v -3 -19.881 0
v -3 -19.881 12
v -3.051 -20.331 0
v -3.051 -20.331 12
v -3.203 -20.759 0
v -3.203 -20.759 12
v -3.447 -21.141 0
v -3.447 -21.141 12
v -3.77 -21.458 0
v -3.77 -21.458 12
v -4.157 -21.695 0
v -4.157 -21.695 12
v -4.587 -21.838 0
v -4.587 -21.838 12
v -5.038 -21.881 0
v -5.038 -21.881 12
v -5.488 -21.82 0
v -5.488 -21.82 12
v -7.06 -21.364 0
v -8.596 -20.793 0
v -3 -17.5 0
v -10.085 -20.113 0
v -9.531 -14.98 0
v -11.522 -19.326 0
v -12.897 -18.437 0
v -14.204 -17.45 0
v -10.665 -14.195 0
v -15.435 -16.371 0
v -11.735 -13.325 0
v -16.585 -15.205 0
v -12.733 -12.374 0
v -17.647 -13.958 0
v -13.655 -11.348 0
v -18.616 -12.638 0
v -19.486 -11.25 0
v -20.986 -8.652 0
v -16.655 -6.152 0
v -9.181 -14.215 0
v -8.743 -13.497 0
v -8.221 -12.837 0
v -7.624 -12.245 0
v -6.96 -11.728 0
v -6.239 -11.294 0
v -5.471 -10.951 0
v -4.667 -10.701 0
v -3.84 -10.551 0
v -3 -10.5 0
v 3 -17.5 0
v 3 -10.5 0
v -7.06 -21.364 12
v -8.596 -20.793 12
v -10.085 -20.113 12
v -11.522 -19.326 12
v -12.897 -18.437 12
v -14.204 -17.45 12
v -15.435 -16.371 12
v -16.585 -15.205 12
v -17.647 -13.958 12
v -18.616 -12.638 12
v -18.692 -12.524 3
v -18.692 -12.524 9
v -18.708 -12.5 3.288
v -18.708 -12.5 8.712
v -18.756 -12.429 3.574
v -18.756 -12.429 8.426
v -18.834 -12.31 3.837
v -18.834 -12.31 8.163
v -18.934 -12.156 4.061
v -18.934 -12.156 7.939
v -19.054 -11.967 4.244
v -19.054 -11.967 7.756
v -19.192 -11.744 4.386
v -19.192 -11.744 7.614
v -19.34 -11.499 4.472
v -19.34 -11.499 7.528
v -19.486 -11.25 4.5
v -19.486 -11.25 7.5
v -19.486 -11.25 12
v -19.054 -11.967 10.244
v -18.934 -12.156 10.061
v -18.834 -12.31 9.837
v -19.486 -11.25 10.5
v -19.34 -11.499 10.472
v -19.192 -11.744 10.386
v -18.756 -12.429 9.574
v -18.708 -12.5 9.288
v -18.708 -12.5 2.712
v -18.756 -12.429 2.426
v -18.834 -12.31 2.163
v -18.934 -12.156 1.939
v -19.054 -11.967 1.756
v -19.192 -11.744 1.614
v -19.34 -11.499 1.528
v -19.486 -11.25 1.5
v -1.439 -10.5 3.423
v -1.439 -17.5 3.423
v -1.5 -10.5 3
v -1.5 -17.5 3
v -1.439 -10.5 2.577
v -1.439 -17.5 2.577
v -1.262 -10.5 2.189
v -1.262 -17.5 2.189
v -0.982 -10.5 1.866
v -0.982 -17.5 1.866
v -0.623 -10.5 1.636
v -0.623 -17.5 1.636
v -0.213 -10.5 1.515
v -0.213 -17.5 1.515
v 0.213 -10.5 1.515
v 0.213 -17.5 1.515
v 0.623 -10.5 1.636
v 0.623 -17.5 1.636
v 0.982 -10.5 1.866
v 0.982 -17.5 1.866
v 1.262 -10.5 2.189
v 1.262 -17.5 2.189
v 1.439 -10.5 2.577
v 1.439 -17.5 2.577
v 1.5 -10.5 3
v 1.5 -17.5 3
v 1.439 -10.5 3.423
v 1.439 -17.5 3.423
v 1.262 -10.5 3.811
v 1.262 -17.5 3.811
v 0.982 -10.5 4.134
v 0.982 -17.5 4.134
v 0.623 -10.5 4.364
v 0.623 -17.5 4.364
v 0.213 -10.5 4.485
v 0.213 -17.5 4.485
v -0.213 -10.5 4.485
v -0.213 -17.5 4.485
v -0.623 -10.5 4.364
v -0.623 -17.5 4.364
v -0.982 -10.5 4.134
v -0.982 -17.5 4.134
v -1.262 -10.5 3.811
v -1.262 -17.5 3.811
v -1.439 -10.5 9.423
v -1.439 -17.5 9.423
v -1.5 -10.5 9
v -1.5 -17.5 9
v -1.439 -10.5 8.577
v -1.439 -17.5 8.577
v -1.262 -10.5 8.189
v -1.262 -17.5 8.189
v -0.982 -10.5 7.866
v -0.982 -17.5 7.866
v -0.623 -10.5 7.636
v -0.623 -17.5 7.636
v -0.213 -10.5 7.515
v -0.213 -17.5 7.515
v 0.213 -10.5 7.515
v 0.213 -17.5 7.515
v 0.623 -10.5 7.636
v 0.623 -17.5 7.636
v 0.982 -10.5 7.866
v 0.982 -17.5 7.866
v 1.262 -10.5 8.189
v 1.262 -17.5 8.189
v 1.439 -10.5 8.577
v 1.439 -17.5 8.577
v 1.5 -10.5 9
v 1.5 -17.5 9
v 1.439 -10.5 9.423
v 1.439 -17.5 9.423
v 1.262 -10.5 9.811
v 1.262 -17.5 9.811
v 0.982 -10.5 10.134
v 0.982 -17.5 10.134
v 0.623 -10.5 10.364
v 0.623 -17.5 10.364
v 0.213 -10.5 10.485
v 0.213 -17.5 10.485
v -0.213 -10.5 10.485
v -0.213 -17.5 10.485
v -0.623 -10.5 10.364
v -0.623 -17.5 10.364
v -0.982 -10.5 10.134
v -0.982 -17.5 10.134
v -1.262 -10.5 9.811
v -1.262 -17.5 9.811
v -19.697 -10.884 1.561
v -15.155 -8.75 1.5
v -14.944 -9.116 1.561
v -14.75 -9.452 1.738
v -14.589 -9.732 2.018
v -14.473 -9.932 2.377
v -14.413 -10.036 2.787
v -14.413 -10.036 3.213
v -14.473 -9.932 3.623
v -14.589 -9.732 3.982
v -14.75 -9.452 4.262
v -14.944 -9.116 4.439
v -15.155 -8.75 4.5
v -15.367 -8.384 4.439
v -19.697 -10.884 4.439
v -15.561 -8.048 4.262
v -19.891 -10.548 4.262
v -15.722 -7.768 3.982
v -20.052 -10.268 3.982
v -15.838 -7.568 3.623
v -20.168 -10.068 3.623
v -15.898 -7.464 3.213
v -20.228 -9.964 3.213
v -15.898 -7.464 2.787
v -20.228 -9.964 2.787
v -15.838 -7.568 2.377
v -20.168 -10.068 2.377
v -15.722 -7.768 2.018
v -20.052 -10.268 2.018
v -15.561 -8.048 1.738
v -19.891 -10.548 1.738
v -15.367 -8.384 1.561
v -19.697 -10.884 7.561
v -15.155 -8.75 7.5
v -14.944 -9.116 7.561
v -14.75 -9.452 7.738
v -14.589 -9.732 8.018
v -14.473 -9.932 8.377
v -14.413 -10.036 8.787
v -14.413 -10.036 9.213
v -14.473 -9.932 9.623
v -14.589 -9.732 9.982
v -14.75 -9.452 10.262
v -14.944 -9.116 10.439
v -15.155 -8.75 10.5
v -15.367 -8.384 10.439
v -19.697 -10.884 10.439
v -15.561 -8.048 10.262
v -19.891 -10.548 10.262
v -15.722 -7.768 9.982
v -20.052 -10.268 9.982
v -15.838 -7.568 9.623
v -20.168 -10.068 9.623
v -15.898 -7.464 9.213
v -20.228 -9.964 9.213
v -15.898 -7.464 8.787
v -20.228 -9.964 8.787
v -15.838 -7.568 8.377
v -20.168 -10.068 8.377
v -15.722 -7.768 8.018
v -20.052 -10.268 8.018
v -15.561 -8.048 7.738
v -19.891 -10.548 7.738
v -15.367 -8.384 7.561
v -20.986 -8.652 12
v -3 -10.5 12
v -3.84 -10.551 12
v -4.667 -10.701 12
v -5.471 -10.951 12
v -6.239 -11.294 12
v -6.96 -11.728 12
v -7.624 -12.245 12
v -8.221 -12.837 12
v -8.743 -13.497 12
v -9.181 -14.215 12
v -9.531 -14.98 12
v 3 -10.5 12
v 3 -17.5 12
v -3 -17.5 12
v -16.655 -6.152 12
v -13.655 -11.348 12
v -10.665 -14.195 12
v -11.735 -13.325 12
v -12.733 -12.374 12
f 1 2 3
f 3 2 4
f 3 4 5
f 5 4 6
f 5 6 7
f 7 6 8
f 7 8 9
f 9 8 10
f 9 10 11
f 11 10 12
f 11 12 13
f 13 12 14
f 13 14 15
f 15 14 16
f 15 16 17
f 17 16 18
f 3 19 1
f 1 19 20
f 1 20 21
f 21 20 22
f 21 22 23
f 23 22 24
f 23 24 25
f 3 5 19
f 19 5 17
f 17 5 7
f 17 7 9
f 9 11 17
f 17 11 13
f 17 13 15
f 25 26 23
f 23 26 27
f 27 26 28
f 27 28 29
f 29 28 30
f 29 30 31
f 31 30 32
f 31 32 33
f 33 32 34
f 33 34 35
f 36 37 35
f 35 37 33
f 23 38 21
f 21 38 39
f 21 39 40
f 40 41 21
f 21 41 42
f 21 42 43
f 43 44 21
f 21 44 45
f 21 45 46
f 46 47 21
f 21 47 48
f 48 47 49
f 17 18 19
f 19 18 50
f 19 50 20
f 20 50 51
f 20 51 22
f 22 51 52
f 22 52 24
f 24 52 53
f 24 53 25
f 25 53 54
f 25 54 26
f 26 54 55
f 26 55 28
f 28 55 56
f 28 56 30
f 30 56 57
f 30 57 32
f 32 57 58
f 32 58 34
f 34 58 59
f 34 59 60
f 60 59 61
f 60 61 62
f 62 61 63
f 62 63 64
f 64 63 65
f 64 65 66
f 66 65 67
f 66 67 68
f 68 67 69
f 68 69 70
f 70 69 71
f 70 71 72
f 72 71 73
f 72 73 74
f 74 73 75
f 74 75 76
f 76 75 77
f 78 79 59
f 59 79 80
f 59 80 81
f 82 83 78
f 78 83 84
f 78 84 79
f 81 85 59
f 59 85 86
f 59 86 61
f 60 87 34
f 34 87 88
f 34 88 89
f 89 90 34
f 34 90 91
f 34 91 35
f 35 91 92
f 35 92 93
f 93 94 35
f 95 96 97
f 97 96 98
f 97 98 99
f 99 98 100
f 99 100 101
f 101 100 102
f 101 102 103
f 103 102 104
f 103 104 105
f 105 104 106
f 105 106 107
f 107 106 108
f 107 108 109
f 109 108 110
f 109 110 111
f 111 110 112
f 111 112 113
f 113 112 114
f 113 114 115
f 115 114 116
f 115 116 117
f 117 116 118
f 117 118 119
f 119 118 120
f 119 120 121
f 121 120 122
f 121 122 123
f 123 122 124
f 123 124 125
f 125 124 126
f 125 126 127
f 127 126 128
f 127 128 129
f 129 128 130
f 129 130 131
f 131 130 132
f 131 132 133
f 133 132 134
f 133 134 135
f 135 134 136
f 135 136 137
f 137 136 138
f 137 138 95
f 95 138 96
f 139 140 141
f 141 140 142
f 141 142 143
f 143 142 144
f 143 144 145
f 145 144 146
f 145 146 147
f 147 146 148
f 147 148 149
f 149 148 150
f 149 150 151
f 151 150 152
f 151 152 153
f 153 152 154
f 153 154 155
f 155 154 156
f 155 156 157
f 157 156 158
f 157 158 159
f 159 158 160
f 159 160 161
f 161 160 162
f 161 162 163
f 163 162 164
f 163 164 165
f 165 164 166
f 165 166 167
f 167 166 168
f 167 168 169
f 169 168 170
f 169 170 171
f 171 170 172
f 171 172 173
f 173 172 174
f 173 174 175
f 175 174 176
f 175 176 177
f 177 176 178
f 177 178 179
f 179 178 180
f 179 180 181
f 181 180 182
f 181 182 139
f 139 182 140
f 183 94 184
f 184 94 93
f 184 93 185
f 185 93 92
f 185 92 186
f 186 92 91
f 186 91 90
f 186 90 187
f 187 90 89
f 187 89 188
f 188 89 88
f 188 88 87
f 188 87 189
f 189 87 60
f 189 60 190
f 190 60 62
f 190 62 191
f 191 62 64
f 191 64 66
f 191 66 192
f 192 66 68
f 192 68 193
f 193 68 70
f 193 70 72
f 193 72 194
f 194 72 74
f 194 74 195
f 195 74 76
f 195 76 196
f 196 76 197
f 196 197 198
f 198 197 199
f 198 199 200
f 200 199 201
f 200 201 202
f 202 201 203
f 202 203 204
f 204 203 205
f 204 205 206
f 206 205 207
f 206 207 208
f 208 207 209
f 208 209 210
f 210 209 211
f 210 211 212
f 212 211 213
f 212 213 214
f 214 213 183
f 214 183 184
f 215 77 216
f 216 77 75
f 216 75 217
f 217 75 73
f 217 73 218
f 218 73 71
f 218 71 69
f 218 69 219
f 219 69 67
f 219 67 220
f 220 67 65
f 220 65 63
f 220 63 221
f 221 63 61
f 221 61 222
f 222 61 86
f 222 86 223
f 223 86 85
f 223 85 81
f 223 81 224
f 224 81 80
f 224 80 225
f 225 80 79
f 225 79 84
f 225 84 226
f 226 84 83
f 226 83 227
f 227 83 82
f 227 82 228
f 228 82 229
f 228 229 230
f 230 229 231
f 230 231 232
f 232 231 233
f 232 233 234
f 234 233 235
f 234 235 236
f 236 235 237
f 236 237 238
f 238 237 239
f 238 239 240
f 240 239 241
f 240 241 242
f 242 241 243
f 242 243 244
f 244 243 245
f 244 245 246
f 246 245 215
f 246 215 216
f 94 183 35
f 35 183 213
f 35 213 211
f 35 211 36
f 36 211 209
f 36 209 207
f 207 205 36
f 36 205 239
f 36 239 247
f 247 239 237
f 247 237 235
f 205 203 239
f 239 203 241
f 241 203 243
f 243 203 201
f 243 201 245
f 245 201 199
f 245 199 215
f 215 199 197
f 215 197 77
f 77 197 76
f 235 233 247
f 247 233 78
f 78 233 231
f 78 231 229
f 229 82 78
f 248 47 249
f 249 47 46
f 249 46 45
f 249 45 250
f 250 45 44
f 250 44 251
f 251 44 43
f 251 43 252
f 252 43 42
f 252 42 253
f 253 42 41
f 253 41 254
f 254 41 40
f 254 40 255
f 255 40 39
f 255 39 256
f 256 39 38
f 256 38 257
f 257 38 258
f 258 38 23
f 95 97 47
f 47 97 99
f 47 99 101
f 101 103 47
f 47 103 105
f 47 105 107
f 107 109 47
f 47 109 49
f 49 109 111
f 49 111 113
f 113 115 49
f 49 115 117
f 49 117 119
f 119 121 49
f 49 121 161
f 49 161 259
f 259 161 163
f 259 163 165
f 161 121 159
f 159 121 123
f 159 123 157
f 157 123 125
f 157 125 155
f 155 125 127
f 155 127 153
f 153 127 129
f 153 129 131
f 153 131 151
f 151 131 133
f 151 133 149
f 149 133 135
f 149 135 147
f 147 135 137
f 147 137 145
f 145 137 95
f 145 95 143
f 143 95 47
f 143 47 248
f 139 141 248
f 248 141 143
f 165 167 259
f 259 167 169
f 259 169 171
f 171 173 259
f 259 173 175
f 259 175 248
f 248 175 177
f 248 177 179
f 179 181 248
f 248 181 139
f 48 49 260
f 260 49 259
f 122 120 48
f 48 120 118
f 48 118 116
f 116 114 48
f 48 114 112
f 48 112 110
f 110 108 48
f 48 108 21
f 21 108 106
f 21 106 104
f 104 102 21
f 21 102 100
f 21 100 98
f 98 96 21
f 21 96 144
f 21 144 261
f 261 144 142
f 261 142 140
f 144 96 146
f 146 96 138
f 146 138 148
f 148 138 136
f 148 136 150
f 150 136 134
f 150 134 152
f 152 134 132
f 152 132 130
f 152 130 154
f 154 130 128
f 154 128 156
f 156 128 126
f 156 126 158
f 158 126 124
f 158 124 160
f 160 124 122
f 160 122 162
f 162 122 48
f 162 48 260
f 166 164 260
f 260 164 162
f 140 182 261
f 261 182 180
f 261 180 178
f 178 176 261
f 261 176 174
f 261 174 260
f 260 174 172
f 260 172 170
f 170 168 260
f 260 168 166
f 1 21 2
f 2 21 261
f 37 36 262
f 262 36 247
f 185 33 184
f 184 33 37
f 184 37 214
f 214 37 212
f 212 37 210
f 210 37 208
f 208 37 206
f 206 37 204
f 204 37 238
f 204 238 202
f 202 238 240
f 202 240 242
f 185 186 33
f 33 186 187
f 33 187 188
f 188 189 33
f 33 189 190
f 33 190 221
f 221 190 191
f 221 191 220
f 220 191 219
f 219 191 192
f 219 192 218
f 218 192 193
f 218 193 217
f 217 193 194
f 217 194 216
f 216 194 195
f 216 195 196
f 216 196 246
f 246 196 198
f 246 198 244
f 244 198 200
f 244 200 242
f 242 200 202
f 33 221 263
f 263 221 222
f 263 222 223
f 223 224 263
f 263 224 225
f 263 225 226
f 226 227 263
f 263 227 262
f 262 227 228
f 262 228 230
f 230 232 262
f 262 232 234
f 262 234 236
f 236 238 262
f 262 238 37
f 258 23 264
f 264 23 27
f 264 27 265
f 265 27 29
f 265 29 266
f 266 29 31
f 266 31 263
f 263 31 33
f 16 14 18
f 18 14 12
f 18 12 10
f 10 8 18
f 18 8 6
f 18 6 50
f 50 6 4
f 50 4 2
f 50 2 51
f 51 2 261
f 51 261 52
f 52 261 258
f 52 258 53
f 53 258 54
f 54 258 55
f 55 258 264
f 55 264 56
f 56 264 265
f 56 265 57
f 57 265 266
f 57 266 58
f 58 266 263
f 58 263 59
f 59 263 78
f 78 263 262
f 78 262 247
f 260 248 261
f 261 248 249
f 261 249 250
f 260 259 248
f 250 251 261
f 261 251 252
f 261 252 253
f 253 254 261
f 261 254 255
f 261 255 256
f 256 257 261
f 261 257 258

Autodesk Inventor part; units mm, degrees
ref_plane "YZ Plane" through (0, 0, 0) normal (1, 0, 0) x (0, 1, 0)
ref_plane "XZ Plane" through (0, 0, 0) normal (0, 1, 0) x (-1, 0, 0)
ref_plane "XY Plane" through (0, 0, 0) normal (0, 0, 1) x (1, 0, 0)
sketch "Sketch1" plane through (0, 0, 0) normal (0, 0, 1) x (1, 0, 0)
  circle A0 centre (0, 0) radius 17.5
  line L0 (-15.1554, -8.75) -> (-13.6554, -11.3481)
  line L1 (-15.1554, -8.75) -> (-16.6554, -6.1519)
  line L2 (0, 0) -> (0, -17.5)
  line L3 (0, 0) -> (15.1554, -8.75)
  line L4 (0, 0) -> (17.5, 0) construction
  line L5 (0, 0) -> (17.5, 0) construction
  line L6 (0, 17.5) -> (0, -17.5)
  line L7 (-15.1554, -8.75) -> (0, 0)
  line L8 (0, -17.5) -> (3, -17.5)
  line L9 (3, -17.5) -> (3, -20.5)
  line L10 (-3, -17.5) -> (0, -17.5)
  line L11 (-3, -17.5) -> (-3, -14)
  line L12 (-3, -10.5) -> (3, -10.5)
  line L13 (3, -10.5) -> (3, -17.5)
  arc A1 (-3, -10.5) -> (-9.5308, -14.9804) centre (-3, -17.5) ccw
  arc A2 (-13.6554, -11.3481) -> (-9.5308, -14.9804) centre (0, 0) ccw
  line L14 (-16.6554, -6.1519) -> (-20.9856, -8.6519)
  line L15 (-20.9856, -8.6519) -> (-19.4856, -11.25)
  arc A3 (-19.4856, -11.25) -> (-3, -22.2991) centre (0, 0) ccw
  line L16 (-3, -14) -> (-3, -22.2991)
  point P0 (0, -10.5)
  point P1 (-3, -17.2409)
  point P2 (3, -17.2409)
  point P3 (-9.4329, -14.7401)
  point P4 (-3, -17.2409)
  dimension "d0" = 35
  dimension "d1" = 3
  dimension "d3" = 3
  dimension "d4" = 330
  dimension "d6" = 35
  dimension "d8" = 3
  dimension "d9" = 3
  dimension "d29" = 7
  dimension "d30" = 6
  dimension "d32" = 5
  dimension "d33" = 3
extrude "Extrusion1" add sketch "Sketch1" along normal blind 12 contours L0 A2 A1 A0 L11 L16 A3 L15 L14 L1 | L13 L8 A0 | A0 L2 L12 L13 | A1 L12 L2 A0 | L10 L11 A0
sketch "Sketch2" plane through (-16.6554, -6.1519, 12) normal (0.866, 0.5, 0) x (0, 0, -1)
  line L0 (0, 0) -> (0, -3)
  line L1 (12, -6) -> (0, -6) projected
  line L2 (0, -3) -> (12, -3)
  line L3 (0, -3) -> (3, -3)
  line L4 (3, -3) -> (9, -3)
  circle A0 centre (3, -3) radius 1.5
  circle A1 centre (9, -3) radius 1.5
  dimension "d14" = 3
  dimension "d15" = 3
  dimension "d16" = 6
  dimension "d17" = 3
  dimension "d18" = 3
extrude "Extrusion2" cut sketch "Sketch2" against normal blind 12
sketch "Sketch3" plane through (-3, -17.5, 0) normal (0, -1, 0) x (1, 0, 0)
  line L0 (6, 12) -> (0, 12) projected
  line L1 (3, 0) -> (3, 3)
  line L2 (3, 3) -> (3, 9)
  circle A0 centre (3, 3) radius 1.5
  circle A1 centre (3, 9) radius 1.5
  dimension "d23" = 3
  dimension "d24" = 6
  dimension "d25" = 3
  dimension "d26" = 3
extrude "Extrusion3" cut sketch "Sketch3" against normal blind 12
fillet "Fillet1" radius 2 1 edges at (-3, -22.2991, 6)
properties part number "acopleV2" material "Iron, Ductile"
